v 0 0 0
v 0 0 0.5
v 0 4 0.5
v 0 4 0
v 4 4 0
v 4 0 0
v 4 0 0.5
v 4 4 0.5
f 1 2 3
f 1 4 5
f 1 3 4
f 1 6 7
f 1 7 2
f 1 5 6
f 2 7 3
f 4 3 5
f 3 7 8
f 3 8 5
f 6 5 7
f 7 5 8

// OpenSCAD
/* Warning, this is a very basic generator with a lot of approximation 
input data : [UQFN, GZX, 4x4x0.5mm, 20, , A, C04-00255A]
generated by com.zoubworld.electronics.cad.model3d.Basic
Date : Sun Feb 15 10:50:48 CET 2026
*/

//body
color("black")
translate([0,0,0])
cube([4.0,4.0,0.5], center=false);
